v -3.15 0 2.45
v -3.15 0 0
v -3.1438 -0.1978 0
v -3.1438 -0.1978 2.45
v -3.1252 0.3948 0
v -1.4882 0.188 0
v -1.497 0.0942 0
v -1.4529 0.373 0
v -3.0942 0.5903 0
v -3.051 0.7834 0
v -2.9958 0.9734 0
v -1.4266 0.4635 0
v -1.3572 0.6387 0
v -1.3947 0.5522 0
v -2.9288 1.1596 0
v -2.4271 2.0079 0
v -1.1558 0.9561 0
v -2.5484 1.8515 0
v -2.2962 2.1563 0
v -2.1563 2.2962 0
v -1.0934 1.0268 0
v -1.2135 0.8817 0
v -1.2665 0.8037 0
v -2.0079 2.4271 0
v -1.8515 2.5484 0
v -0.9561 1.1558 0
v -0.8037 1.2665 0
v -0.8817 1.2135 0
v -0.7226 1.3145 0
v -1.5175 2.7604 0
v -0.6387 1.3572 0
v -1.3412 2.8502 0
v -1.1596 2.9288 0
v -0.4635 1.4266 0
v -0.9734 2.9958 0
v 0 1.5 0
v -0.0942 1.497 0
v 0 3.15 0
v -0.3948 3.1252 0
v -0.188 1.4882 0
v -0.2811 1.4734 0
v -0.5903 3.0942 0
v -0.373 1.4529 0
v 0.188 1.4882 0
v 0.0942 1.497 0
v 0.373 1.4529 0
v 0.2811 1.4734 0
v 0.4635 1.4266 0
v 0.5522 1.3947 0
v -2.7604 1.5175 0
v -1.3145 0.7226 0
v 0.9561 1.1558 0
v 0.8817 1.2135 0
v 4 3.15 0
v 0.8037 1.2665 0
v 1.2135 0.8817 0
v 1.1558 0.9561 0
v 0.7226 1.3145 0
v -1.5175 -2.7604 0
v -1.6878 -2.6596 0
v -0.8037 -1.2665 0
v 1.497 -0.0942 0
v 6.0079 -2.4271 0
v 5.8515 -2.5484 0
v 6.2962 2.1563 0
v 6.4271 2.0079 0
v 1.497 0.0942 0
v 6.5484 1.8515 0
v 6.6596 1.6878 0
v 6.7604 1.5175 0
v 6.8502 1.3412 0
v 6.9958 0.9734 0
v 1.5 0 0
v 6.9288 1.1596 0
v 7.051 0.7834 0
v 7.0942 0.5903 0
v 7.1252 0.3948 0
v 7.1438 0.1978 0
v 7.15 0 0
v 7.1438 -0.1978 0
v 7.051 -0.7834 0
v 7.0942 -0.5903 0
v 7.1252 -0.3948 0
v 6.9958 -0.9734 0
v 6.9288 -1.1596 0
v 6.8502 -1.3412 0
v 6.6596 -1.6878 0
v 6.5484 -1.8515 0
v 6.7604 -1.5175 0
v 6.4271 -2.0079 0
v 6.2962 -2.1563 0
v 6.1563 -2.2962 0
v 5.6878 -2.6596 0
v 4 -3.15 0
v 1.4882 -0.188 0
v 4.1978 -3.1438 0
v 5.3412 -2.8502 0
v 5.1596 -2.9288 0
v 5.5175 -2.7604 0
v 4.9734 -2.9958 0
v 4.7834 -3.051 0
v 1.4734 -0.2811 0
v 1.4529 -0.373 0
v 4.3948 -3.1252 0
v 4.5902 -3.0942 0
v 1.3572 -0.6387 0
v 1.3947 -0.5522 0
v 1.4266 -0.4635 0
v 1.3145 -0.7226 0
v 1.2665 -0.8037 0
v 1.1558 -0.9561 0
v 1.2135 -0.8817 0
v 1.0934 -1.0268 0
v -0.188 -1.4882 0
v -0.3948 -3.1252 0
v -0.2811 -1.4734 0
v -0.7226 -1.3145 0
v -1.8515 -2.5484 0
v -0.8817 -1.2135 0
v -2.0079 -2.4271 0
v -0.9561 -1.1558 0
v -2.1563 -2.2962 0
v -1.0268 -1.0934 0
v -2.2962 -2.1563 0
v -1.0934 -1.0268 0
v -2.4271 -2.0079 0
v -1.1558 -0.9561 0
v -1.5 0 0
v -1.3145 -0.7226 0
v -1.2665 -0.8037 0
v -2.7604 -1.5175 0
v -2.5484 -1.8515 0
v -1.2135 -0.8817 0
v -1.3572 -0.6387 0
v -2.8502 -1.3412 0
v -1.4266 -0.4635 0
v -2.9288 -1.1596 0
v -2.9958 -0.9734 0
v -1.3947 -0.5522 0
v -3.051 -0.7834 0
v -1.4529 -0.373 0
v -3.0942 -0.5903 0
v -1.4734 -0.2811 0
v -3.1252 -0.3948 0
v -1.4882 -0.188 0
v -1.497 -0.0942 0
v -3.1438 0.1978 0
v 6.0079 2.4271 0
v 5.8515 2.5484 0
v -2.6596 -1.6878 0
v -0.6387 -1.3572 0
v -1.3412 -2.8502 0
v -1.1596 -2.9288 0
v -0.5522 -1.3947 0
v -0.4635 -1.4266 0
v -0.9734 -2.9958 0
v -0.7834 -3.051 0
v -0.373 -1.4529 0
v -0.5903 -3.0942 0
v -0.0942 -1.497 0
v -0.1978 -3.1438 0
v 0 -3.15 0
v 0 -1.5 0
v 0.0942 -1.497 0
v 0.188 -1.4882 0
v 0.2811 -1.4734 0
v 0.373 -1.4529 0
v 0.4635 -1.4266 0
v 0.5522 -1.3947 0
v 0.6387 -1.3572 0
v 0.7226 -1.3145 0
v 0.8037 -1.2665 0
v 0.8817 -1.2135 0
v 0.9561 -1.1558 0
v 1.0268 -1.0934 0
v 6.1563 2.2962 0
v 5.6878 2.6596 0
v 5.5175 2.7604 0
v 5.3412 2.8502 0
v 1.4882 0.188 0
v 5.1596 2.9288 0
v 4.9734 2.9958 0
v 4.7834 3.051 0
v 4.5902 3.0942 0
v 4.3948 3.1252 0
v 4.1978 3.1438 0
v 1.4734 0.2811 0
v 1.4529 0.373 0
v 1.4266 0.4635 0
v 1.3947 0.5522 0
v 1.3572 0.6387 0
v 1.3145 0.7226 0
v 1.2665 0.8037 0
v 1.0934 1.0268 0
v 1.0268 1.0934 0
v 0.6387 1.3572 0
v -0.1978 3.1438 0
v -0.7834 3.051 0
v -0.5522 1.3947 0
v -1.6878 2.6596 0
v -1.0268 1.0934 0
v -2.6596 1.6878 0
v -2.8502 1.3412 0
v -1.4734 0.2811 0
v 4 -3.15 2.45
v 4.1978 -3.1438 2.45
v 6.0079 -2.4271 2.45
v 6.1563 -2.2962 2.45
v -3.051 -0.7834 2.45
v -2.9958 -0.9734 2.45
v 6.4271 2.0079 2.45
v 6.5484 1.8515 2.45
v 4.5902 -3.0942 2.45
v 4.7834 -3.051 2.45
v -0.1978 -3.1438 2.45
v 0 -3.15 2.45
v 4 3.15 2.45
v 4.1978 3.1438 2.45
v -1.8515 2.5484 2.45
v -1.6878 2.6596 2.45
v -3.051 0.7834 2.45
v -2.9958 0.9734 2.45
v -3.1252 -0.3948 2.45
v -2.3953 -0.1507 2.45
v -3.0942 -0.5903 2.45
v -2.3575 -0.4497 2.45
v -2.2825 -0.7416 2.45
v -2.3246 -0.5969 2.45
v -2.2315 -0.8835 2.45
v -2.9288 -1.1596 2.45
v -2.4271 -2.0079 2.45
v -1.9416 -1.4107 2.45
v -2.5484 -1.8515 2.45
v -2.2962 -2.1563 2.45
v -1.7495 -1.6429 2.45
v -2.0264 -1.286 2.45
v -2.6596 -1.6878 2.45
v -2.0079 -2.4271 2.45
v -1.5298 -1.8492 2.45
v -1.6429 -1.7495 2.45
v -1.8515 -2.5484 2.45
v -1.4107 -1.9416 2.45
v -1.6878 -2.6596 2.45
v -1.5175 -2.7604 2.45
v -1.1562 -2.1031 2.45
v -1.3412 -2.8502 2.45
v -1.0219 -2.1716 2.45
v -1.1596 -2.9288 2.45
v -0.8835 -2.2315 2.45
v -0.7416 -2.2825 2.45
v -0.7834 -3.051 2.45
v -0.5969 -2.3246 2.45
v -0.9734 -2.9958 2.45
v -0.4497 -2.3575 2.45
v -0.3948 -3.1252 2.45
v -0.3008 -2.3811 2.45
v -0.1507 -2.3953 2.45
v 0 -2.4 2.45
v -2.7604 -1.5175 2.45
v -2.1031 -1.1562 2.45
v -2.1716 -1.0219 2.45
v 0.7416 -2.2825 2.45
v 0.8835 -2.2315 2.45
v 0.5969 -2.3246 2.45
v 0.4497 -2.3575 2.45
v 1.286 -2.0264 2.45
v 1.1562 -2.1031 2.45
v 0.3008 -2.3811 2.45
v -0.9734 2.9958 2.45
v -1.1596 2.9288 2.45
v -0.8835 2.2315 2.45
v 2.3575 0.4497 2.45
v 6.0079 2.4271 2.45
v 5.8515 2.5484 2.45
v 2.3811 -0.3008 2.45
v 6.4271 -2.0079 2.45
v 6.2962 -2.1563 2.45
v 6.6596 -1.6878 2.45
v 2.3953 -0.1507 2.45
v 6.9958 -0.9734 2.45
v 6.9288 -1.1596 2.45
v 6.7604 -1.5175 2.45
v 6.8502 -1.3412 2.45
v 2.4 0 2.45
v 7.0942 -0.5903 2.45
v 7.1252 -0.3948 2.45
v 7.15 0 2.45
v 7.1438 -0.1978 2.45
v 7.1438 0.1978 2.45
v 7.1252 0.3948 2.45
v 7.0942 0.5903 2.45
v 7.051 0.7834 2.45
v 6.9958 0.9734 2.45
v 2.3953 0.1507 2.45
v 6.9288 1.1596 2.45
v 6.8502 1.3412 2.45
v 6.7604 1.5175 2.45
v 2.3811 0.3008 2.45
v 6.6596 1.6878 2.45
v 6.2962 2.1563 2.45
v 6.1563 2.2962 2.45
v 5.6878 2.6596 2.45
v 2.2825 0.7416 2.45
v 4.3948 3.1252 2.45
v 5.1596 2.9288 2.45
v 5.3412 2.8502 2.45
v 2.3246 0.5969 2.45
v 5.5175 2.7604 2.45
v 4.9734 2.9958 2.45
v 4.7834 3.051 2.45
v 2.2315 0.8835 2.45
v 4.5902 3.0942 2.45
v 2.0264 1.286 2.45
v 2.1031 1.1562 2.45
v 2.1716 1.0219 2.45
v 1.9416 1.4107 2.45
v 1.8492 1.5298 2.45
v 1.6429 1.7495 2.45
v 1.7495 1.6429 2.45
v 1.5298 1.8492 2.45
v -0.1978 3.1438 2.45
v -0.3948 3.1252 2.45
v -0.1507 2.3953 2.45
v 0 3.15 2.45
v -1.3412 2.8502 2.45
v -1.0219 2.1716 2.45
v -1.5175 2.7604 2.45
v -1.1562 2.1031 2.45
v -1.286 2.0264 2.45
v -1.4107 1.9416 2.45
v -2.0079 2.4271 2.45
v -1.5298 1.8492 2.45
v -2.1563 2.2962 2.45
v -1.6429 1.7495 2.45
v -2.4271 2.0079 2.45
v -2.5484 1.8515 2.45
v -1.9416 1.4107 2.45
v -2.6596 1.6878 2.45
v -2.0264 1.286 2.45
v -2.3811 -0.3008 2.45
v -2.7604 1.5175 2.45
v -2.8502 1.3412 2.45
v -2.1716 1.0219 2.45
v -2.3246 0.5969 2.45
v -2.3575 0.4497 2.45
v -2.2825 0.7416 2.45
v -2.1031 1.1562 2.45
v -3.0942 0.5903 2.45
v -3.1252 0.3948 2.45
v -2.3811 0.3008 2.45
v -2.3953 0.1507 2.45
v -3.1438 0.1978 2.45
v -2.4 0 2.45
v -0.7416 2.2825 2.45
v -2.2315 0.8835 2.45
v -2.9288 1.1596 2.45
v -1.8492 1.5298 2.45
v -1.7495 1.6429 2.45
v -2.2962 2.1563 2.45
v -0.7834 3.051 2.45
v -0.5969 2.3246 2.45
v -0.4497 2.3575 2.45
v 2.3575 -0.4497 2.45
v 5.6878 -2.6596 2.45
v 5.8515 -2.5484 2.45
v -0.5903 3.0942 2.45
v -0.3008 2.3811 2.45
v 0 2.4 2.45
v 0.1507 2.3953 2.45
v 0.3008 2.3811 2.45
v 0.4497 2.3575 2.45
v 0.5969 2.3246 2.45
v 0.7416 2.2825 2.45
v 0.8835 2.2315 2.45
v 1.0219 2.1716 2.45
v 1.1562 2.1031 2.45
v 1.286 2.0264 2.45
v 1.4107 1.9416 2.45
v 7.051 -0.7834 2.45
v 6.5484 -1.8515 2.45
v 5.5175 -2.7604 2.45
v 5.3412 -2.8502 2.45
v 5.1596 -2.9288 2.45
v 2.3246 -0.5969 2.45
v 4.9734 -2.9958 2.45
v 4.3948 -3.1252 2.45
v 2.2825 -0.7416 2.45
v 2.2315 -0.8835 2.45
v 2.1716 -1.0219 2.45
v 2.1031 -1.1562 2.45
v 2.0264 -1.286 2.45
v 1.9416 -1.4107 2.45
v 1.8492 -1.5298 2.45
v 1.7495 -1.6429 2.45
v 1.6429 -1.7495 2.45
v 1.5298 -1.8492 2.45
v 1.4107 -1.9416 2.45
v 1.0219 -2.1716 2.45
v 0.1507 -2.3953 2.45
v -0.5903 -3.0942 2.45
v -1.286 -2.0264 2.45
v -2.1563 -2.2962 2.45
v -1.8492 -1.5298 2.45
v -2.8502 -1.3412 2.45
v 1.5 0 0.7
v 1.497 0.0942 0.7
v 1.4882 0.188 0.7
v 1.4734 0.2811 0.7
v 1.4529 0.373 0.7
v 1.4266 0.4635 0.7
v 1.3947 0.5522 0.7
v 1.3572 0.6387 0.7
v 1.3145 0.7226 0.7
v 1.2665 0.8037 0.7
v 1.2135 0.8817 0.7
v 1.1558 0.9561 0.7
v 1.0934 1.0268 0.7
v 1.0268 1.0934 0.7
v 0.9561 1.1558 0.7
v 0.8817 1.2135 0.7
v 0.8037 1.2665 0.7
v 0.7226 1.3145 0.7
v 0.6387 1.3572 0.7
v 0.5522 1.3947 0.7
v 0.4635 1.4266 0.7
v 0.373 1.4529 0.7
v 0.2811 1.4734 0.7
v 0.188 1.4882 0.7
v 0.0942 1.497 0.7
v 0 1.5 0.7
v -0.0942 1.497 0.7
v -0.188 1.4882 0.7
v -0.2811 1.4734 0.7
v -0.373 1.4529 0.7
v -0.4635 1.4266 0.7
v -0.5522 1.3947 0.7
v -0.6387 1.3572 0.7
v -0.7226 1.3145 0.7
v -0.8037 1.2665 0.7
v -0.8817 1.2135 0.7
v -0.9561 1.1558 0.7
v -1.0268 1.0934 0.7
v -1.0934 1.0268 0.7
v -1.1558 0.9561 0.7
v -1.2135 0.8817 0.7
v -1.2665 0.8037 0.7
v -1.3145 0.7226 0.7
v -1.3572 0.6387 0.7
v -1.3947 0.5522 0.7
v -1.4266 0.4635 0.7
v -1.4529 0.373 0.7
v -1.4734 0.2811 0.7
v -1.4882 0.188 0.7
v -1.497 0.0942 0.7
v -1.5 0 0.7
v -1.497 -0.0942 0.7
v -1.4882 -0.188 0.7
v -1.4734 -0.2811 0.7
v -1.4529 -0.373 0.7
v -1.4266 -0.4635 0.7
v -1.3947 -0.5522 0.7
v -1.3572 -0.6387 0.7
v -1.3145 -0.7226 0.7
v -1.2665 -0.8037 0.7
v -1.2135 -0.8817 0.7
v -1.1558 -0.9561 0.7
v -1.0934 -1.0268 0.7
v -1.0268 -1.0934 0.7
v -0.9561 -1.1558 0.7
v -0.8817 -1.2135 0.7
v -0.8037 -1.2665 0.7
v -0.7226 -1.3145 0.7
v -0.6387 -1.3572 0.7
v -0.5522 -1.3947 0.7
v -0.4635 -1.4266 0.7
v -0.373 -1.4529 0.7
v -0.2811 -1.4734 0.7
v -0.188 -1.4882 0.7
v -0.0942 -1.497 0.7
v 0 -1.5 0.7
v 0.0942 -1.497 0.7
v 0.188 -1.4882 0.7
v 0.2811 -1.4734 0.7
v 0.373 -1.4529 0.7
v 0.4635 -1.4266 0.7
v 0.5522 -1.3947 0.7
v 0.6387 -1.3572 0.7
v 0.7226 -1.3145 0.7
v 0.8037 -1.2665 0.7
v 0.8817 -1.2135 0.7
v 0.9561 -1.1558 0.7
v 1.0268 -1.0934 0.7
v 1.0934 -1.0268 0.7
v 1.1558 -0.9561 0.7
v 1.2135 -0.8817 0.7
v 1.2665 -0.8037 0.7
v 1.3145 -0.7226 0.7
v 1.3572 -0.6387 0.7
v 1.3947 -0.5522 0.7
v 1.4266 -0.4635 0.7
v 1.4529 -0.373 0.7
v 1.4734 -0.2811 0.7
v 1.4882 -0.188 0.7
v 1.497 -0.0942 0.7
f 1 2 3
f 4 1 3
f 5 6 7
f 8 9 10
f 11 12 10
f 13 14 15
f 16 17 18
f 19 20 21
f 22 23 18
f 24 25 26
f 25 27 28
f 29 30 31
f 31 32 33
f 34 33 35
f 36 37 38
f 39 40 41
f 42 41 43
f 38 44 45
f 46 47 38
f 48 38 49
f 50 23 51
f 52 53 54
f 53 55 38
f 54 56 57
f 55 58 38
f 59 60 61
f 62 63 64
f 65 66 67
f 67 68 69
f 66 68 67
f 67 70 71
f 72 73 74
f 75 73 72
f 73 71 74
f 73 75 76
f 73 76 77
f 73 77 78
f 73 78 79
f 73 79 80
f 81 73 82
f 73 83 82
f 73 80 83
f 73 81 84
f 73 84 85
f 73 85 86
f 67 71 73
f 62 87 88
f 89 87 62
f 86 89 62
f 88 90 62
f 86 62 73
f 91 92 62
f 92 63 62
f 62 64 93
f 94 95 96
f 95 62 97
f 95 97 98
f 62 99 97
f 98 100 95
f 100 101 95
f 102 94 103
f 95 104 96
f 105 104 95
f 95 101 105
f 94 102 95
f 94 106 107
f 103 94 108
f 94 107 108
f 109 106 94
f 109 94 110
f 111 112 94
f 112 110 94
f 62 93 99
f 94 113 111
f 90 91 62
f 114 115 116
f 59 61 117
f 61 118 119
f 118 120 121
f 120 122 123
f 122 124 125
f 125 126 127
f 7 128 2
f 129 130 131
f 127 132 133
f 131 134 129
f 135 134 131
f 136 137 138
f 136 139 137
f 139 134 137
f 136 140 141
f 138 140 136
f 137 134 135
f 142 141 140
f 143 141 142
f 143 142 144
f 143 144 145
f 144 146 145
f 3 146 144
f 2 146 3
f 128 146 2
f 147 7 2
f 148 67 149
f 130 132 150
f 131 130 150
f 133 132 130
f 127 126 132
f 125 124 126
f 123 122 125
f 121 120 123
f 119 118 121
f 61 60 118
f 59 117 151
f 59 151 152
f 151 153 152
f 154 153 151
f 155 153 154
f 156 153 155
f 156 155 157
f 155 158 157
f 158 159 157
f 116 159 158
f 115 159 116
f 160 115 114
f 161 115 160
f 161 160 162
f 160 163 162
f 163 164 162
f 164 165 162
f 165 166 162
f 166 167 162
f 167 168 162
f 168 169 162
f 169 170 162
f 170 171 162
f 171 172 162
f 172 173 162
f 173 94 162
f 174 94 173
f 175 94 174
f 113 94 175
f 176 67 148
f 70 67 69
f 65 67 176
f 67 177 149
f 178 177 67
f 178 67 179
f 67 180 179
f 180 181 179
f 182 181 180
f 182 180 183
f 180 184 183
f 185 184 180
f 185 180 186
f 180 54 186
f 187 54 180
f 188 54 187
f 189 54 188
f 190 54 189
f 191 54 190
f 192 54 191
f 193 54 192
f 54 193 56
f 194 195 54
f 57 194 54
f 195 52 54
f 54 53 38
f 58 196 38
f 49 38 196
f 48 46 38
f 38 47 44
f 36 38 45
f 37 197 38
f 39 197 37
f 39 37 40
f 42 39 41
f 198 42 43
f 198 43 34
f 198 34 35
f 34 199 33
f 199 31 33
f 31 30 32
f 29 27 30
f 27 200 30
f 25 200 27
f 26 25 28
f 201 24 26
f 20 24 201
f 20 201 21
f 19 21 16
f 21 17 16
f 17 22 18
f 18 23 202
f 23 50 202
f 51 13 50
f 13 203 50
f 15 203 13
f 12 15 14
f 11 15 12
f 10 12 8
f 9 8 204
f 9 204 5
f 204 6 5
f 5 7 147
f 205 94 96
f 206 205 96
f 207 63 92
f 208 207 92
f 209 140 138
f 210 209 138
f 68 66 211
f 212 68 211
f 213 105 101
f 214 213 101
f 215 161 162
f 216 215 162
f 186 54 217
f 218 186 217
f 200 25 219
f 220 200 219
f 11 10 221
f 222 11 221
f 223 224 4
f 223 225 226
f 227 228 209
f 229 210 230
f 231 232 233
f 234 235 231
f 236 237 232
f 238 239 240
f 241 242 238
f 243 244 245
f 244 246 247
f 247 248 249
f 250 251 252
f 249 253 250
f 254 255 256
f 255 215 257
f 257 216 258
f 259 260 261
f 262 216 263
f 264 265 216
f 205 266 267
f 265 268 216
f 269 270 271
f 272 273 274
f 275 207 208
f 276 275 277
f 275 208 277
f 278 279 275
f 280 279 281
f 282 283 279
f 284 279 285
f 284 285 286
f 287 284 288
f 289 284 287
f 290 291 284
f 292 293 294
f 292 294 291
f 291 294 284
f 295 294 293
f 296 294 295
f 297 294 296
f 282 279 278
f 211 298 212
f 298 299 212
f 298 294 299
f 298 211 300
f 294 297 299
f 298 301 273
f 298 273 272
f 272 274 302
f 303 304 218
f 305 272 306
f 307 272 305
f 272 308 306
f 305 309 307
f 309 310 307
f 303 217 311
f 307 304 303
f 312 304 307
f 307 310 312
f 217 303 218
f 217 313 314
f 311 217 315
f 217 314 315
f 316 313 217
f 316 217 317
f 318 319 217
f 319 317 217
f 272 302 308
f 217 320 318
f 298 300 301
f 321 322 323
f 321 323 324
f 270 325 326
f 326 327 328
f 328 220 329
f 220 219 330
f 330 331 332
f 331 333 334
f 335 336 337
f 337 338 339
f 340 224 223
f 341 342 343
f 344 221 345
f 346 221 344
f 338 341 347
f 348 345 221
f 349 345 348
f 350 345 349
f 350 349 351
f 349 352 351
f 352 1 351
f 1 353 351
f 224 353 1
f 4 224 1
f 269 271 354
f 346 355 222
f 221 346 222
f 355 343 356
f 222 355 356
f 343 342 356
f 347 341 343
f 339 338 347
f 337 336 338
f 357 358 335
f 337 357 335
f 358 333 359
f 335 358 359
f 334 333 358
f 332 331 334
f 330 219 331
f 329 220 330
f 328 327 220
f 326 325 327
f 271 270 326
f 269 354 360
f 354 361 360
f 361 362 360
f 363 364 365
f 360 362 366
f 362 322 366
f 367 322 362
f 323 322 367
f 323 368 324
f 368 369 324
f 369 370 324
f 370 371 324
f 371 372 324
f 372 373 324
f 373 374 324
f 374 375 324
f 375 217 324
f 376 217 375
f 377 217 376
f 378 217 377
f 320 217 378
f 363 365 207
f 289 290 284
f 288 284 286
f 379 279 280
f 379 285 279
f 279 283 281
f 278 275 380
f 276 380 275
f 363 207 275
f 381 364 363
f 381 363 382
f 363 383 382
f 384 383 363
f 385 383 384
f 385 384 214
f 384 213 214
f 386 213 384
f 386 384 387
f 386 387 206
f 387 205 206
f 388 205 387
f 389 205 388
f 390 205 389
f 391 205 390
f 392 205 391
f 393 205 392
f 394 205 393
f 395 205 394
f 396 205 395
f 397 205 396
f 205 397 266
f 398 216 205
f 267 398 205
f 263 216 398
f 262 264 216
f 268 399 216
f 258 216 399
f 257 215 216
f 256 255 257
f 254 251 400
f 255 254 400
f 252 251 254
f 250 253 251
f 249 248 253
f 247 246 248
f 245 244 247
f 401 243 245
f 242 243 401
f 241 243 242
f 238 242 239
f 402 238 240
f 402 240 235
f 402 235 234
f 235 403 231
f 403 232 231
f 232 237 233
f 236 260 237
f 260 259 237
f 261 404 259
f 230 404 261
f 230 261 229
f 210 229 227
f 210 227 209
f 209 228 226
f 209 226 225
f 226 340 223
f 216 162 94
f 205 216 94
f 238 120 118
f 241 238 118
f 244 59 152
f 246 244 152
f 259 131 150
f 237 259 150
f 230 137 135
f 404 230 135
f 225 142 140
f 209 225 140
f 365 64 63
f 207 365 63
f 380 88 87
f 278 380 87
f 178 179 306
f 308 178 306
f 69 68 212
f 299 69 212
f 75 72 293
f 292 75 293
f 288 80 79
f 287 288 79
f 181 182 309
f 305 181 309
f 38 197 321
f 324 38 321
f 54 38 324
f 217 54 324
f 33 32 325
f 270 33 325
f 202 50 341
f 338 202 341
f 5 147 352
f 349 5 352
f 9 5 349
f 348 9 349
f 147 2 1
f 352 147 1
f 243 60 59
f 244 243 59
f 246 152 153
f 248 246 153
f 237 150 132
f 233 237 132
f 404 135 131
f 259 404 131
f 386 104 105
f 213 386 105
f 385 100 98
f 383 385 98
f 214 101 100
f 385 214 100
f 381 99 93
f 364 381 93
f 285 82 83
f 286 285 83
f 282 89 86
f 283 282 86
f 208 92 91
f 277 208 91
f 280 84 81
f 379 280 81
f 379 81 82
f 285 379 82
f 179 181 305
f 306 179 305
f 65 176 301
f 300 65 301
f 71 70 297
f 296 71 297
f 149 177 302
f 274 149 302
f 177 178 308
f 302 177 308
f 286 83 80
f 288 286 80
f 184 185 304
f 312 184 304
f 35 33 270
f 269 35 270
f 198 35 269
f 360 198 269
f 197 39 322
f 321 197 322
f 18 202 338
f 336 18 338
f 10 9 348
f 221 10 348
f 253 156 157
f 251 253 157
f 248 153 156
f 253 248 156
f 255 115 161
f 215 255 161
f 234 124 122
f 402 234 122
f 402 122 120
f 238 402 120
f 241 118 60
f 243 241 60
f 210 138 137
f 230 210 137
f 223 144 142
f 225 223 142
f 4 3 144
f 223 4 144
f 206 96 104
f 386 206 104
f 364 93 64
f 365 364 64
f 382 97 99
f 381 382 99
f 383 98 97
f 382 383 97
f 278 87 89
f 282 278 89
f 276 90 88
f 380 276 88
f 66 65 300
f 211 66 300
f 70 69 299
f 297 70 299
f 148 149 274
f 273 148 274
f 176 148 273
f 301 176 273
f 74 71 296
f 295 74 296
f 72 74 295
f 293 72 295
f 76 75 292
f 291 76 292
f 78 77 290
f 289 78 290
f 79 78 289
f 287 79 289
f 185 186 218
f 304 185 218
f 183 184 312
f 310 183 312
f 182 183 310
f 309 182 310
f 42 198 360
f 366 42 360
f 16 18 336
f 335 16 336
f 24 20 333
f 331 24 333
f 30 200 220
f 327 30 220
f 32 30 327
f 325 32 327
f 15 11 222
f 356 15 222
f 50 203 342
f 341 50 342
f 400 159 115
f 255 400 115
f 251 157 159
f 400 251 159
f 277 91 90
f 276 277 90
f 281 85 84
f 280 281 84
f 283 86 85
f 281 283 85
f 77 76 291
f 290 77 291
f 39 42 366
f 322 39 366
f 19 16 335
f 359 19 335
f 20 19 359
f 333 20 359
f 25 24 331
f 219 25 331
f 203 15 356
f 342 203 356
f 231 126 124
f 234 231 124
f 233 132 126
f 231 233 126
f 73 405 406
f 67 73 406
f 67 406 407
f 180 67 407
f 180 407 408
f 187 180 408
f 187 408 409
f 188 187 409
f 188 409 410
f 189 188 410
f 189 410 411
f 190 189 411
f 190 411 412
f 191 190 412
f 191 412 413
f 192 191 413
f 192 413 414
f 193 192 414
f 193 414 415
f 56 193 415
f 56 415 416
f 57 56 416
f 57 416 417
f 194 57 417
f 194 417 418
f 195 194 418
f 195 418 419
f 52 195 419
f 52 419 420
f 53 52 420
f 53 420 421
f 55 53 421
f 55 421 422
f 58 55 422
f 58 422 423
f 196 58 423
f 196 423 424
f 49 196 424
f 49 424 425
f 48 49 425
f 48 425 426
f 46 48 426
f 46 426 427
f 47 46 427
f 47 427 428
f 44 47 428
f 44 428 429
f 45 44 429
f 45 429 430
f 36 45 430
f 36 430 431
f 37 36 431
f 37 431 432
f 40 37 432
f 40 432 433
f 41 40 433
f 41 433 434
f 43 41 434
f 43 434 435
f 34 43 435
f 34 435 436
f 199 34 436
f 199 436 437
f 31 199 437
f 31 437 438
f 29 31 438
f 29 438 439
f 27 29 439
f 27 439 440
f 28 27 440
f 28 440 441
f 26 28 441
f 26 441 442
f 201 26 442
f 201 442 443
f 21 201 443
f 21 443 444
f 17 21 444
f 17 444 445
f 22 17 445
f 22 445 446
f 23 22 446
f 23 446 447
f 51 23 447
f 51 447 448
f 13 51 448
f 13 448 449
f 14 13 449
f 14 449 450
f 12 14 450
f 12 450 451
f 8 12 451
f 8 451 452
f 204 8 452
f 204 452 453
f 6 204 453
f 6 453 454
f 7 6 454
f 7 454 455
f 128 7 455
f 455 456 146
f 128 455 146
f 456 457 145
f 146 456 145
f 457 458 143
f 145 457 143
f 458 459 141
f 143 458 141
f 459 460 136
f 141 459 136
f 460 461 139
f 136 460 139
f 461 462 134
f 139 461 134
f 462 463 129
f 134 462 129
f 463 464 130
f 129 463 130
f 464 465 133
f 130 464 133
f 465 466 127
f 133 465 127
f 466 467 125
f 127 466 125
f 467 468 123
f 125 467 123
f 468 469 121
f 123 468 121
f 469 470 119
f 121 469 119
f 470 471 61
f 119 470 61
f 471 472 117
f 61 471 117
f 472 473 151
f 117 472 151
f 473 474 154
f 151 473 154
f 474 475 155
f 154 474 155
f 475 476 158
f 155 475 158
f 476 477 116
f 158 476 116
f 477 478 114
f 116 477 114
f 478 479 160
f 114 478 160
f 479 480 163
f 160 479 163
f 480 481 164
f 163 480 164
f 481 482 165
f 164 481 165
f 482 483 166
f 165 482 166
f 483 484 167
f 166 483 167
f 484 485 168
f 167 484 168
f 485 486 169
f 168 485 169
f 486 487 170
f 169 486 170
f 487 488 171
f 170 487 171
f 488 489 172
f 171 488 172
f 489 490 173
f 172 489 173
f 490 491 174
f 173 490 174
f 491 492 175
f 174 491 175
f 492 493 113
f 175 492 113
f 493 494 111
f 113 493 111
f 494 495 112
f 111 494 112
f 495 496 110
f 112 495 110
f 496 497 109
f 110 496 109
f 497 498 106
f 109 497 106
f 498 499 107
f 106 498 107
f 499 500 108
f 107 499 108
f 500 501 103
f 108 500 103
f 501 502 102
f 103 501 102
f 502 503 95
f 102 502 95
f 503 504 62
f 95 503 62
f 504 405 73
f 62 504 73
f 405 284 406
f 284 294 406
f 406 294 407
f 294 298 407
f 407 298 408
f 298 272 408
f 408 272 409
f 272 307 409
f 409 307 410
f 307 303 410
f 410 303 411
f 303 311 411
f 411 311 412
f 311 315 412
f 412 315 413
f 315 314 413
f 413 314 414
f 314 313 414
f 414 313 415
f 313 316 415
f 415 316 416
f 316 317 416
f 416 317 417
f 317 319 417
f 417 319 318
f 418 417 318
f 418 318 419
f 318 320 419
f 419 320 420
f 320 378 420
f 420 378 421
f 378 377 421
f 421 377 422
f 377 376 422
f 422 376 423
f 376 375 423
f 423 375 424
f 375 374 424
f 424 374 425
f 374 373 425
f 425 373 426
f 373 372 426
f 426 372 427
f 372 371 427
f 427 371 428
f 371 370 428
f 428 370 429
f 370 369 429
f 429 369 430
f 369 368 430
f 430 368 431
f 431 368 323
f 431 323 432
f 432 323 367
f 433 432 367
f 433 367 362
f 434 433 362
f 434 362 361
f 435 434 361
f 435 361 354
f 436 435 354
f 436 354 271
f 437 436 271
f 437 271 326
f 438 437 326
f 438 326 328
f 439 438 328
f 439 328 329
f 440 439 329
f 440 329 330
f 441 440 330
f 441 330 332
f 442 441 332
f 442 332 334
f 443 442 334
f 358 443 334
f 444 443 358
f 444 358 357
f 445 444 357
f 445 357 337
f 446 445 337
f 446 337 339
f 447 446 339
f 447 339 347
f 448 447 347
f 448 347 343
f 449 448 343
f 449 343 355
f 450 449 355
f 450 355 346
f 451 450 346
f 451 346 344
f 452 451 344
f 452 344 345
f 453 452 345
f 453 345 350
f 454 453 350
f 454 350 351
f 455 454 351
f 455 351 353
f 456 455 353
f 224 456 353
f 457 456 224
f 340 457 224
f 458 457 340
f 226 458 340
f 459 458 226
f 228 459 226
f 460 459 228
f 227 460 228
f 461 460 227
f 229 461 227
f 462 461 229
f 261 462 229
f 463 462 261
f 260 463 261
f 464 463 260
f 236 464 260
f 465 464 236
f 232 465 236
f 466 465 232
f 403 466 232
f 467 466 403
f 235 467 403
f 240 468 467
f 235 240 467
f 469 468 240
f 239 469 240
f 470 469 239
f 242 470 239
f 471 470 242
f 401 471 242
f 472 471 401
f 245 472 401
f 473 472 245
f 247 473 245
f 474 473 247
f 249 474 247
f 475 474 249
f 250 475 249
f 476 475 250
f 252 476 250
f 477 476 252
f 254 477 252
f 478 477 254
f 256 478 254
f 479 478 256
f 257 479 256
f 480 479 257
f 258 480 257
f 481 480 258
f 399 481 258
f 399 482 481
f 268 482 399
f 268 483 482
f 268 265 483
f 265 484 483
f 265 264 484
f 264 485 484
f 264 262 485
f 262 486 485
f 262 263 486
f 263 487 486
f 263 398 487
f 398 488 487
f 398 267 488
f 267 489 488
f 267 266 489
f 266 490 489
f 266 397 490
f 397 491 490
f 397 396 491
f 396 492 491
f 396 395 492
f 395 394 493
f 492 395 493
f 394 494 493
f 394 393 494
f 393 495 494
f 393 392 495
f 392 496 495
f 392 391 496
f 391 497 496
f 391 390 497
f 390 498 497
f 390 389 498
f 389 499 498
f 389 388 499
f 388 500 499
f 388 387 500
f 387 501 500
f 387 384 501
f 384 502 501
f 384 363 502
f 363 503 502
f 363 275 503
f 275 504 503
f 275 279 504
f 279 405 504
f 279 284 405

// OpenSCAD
$fn=100;
height=2.45;
diam=6.3;
hole=3;
countersink_top=4.8;
countersink_offset=.7;
difference(){
    hull(){
        cylinder(h=height,d=diam);
        translate([4,0,0]) cylinder(h=height,d=diam);
    };
        cylinder(h=height,d=hole);
        translate([0,0,countersink_offset]) cylinder(h=height-countersink_offset,d1=hole,d2=countersink_top);
}
